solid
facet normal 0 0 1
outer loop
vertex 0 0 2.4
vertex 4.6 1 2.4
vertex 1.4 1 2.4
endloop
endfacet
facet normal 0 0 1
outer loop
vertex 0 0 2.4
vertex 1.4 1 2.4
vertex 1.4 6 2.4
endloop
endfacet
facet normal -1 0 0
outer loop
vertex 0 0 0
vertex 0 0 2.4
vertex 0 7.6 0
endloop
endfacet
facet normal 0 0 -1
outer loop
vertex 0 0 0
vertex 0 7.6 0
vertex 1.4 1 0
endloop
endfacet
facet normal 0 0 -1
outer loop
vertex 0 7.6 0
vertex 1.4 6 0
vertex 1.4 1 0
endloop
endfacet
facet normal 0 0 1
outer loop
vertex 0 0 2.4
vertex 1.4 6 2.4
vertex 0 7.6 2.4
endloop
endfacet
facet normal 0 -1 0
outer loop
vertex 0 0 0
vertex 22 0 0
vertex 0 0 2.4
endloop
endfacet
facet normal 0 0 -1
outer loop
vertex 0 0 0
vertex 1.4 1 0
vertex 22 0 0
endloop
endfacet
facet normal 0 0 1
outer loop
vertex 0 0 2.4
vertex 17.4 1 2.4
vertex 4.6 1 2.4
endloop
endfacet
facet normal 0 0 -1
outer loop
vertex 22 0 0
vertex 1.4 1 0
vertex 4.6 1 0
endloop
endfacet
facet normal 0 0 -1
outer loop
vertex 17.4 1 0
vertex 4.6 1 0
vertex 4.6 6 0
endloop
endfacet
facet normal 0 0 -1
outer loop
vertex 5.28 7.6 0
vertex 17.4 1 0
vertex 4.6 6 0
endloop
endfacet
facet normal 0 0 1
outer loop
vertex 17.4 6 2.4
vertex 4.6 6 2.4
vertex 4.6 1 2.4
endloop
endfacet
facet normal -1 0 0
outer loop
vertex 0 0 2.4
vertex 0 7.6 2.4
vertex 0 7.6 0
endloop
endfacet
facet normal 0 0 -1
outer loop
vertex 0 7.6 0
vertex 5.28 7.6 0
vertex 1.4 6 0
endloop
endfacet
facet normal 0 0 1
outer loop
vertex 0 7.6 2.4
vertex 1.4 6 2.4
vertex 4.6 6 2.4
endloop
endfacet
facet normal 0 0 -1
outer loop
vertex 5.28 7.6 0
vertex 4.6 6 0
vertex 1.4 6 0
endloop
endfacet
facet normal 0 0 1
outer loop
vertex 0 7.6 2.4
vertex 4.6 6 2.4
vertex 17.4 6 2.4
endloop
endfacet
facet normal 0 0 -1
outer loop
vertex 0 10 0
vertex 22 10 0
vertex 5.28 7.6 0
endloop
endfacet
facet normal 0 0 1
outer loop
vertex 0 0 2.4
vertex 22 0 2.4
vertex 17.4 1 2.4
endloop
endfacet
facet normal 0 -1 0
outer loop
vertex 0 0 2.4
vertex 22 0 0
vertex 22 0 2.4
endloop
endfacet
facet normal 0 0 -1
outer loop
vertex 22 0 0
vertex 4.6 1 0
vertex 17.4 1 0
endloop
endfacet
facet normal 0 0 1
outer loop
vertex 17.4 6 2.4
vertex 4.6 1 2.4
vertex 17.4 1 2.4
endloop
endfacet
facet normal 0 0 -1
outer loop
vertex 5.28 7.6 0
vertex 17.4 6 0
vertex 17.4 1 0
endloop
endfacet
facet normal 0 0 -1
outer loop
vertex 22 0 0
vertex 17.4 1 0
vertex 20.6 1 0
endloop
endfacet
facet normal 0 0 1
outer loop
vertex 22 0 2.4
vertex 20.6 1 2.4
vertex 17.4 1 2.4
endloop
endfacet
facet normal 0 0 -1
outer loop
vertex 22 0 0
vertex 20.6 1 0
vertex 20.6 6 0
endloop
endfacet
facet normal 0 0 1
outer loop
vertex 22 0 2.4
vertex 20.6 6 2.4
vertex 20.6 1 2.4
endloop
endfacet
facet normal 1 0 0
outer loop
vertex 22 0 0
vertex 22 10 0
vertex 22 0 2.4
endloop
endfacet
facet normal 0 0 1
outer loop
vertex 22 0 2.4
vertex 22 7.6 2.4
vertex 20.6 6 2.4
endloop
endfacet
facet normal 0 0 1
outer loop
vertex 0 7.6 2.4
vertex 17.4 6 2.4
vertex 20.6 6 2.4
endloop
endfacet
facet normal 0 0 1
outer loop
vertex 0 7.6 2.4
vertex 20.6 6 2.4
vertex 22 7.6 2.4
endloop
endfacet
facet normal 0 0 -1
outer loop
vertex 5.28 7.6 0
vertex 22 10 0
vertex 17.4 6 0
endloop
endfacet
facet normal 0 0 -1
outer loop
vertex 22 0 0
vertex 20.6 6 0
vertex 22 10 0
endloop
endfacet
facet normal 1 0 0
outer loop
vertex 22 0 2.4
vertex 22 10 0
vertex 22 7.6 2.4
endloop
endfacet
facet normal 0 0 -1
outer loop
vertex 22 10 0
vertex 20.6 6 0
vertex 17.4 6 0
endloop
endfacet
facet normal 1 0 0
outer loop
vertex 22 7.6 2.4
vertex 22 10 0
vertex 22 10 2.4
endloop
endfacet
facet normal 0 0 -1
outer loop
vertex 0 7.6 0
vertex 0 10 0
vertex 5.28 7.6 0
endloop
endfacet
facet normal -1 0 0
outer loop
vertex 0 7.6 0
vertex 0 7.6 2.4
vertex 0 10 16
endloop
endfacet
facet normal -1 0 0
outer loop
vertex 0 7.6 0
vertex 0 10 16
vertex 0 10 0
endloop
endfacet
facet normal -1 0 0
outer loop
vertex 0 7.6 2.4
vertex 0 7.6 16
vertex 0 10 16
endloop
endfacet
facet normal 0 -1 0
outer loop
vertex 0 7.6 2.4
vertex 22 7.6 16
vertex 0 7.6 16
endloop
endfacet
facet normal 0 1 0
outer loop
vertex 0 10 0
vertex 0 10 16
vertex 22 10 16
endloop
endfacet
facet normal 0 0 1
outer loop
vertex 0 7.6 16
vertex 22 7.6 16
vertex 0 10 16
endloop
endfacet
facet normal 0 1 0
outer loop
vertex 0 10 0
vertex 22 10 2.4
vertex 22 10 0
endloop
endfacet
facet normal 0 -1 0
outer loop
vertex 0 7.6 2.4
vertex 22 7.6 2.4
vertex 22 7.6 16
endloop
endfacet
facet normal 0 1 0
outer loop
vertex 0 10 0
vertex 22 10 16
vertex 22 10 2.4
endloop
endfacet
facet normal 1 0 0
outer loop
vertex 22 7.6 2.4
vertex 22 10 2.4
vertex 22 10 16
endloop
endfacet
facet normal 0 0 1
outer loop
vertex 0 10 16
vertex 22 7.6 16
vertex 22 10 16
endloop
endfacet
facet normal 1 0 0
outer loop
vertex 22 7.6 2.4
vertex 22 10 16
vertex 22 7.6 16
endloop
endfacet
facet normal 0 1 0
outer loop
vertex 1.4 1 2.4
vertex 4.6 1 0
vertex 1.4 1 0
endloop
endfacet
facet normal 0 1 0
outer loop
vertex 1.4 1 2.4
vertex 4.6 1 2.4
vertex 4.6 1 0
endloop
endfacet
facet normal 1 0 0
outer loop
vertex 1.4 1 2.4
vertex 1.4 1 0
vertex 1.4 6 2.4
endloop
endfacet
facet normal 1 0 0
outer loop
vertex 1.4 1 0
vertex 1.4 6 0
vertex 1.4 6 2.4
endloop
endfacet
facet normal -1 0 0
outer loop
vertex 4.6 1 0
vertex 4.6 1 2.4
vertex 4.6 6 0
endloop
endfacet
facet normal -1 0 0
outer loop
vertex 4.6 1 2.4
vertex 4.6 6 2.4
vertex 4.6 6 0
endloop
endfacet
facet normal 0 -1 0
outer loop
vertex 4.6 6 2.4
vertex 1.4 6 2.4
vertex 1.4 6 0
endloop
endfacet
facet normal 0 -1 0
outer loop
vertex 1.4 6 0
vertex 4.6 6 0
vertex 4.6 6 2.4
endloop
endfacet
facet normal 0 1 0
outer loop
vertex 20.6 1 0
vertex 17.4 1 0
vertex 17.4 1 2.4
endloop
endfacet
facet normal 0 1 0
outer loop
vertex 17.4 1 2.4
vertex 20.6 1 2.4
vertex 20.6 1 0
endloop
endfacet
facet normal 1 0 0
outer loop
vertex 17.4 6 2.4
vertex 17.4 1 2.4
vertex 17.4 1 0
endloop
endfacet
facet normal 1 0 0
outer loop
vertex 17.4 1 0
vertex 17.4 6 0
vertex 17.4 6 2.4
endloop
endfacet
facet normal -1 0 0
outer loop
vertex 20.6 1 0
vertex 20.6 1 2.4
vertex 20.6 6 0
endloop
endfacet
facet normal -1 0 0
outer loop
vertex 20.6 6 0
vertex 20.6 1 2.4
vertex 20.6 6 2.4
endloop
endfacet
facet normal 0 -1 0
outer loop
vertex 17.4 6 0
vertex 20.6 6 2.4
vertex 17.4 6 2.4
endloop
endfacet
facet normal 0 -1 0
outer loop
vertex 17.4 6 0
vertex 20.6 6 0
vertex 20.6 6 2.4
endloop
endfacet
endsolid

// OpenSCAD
// GENERATED from build.py and parameters.json. Trial dimensions, mm.
translate([-22, -48.0, -2.4]) { difference() {
union() {
translate([22, 48.0, 2.4]) { cube([22,10,2.4]); }
translate([22, 55.6, 2.4]) { cube([22,2.4,16.0]); }
}
translate([23.4, 49.0, 2.3]) { cube([3.2,5,2.6]); }
translate([39.4, 49.0, 2.3]) { cube([3.2,5,2.6]); }
} }
